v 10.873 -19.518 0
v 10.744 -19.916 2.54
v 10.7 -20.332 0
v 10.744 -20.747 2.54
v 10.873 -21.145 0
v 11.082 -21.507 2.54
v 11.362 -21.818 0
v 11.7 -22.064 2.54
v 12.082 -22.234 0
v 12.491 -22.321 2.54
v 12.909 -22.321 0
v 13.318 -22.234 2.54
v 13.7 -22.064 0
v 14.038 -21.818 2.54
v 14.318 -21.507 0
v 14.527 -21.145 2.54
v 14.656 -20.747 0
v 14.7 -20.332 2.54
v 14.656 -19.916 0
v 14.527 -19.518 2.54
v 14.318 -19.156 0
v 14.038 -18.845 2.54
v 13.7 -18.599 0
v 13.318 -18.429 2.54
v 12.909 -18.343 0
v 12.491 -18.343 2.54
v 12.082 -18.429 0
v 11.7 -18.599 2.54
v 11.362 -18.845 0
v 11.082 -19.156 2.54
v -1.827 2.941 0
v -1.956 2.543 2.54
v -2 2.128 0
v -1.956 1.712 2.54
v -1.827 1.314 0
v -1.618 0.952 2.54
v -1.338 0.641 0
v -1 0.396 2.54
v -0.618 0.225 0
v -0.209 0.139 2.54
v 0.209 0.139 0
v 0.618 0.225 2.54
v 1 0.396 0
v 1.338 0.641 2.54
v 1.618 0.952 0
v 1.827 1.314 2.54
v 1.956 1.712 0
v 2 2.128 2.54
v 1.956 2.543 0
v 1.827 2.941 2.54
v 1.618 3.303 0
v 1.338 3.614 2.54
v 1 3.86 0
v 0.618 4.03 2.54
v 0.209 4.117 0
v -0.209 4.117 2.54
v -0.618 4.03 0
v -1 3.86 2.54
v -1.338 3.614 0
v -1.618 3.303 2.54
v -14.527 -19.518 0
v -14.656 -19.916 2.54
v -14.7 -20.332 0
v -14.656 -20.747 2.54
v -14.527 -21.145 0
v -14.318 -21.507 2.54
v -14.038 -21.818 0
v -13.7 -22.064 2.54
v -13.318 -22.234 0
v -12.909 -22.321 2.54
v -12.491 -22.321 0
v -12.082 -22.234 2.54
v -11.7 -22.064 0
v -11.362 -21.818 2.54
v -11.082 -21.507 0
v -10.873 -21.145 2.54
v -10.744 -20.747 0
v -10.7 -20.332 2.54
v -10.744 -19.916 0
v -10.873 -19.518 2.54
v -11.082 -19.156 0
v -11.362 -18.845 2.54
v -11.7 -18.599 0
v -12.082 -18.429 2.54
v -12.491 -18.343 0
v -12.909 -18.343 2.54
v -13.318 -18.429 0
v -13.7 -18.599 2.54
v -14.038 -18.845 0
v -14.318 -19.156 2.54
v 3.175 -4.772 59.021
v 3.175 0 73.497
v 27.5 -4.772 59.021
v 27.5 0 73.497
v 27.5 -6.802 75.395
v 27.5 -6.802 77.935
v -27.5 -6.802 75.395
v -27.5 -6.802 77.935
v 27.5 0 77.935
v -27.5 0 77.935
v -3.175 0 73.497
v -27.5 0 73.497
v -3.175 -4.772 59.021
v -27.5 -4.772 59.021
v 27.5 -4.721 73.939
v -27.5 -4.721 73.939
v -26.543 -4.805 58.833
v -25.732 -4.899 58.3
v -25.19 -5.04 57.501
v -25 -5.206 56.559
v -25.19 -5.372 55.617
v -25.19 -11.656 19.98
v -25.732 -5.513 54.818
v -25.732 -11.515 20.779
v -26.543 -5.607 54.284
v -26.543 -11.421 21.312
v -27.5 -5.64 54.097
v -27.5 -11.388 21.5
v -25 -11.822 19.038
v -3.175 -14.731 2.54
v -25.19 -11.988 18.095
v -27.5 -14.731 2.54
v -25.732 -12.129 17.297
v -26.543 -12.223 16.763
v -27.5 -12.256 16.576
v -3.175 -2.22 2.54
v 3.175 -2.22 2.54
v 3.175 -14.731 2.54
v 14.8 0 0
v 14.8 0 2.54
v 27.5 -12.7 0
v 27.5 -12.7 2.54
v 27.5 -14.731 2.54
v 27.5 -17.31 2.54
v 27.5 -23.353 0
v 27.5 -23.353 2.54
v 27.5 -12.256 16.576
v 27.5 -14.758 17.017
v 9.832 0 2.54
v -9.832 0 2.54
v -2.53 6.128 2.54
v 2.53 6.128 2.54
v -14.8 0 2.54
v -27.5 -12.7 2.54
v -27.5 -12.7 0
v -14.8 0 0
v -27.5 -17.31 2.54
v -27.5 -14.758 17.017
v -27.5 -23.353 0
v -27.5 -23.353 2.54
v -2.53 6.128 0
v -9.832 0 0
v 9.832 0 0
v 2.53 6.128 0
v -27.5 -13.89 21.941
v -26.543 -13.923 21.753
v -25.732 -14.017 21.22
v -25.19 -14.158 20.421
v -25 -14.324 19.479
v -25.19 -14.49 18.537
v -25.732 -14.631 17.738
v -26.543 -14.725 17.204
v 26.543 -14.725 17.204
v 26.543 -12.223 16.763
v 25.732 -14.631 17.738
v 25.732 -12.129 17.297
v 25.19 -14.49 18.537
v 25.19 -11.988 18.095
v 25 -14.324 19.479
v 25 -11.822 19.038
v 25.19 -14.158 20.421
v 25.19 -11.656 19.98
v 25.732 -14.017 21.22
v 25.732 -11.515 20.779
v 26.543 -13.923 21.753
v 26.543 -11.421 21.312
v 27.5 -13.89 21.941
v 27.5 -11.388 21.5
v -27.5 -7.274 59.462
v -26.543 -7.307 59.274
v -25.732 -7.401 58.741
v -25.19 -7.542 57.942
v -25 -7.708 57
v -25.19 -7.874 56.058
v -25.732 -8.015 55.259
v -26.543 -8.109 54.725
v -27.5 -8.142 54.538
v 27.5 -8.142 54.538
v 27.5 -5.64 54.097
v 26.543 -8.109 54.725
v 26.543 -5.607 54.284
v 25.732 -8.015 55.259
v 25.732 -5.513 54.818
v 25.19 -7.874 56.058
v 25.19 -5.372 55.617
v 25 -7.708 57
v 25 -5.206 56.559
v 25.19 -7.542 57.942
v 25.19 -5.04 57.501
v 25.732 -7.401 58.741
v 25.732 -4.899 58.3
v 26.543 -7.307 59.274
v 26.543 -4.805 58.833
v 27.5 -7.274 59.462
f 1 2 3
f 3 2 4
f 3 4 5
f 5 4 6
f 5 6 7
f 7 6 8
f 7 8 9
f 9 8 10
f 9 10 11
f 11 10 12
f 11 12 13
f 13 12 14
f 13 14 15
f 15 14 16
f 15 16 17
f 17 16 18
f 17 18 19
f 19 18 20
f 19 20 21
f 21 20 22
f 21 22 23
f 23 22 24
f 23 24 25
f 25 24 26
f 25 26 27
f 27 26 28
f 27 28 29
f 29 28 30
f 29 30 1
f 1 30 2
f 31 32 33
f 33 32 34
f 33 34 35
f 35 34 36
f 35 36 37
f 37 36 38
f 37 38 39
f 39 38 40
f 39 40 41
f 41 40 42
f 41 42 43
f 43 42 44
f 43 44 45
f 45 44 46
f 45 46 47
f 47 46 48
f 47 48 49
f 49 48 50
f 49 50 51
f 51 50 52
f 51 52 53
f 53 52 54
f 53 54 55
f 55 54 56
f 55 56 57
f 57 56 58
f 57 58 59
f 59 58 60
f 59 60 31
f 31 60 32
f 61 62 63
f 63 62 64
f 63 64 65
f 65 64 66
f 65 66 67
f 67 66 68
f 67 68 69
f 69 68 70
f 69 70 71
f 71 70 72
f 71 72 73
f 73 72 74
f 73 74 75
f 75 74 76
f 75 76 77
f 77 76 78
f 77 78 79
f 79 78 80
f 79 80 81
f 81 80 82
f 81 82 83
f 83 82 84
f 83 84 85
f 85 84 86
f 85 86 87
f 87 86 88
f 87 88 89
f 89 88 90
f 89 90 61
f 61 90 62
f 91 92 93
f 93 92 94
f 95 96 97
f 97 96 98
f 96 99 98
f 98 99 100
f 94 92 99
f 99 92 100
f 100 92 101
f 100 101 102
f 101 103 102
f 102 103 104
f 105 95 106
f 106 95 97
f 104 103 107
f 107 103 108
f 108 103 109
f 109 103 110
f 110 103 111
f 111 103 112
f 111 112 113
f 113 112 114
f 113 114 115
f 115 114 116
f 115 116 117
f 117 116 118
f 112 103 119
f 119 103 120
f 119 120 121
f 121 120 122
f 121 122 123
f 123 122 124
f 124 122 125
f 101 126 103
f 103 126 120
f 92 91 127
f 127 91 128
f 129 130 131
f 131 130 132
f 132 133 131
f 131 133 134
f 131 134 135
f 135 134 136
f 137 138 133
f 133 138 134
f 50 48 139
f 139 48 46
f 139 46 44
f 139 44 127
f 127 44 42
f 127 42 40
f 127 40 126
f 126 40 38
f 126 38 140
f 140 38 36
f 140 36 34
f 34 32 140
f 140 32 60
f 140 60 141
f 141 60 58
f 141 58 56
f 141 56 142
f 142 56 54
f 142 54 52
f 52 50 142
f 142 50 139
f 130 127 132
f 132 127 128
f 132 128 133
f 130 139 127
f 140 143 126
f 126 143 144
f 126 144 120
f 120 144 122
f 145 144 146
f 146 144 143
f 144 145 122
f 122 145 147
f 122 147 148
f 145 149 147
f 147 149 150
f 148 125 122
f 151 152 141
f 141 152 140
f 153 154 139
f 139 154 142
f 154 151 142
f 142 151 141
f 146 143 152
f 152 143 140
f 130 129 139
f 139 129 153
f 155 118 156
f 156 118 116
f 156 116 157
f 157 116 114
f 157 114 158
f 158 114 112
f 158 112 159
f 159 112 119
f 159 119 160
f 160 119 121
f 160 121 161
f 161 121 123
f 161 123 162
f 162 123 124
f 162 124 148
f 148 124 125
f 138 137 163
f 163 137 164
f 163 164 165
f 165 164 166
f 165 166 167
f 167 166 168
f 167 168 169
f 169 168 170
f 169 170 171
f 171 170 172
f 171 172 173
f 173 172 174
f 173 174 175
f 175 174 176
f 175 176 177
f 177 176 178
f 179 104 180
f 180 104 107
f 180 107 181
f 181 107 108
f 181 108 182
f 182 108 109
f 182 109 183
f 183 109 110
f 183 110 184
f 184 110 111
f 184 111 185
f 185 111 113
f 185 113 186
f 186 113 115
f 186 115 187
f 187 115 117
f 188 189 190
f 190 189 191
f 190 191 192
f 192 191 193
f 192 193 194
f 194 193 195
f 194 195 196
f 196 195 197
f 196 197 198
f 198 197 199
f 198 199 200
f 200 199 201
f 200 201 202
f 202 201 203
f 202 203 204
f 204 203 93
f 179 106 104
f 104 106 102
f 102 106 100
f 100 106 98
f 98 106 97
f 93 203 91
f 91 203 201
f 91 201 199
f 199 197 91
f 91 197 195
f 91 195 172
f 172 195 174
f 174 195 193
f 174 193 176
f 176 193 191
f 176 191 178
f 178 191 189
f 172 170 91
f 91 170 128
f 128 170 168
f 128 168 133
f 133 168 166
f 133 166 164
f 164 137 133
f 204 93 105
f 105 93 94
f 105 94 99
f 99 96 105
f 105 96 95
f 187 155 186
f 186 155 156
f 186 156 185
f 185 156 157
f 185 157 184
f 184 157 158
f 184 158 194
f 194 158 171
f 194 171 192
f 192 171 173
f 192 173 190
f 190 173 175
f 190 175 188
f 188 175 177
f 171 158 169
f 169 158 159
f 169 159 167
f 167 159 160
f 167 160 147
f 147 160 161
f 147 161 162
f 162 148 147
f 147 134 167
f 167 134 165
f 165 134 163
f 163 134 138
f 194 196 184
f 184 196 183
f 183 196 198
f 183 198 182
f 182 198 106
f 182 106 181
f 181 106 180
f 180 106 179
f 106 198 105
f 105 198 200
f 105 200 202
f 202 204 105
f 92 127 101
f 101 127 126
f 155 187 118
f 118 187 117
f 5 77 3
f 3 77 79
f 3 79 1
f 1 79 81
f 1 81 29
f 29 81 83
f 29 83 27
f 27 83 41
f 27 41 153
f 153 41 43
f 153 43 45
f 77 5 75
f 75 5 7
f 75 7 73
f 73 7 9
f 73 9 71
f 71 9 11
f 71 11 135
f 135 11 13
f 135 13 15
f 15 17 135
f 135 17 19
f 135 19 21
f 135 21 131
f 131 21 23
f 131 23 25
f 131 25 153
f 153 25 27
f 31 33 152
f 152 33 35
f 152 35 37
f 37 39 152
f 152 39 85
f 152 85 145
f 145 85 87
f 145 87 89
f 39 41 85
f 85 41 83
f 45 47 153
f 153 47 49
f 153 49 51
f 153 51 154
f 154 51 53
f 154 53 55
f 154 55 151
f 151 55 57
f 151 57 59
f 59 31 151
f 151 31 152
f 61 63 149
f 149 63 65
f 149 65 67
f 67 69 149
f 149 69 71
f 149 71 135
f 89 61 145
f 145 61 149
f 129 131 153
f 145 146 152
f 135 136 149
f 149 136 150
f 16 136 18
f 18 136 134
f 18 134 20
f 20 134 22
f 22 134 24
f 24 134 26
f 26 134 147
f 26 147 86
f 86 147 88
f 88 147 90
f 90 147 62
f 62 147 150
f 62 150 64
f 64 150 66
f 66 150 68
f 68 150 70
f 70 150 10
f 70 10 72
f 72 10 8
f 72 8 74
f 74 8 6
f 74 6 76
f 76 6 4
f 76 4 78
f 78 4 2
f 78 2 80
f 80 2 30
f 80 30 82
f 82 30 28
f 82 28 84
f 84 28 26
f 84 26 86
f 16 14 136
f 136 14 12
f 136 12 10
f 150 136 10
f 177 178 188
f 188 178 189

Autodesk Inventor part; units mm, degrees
ref_plane "YZ Plane" through (0, 0, 0) normal (1, 0, 0) x (0, 1, 0)
ref_plane "XZ Plane" through (0, 0, 0) normal (0, 1, 0) x (-1, 0, 0)
sketch "Sketch2" plane through (0, 0, 0) normal (1, 0, 0) x (0, 1, 0)
  line L0 (-23.6605, 0) -> (-23.6605, 2.54)
  line L1 (-23.6605, 2.54) -> (-17.3105, 2.54)
  line L2 (-17.3105, 2.54) -> (-4.721, 73.9386)
  line L3 (10.5271, 0) -> (9.3929, 0) projected
  line L4 (-4.721, 73.9386) -> (-2.2195, 73.4975)
  line L5 (-4.721, 73.9386) -> (-2.181, 73.9386) construction
  line L6 (-23.3526, 2.54) -> (0, 2.54)
  line L7 (0, 2.54) -> (0, 0)
  line L8 (0, 0) -> (-23.3526, 0)
  line L9 (-23.3526, 0) -> (-23.3526, 2.54)
  line L10 (-2.2195, 73.4975) -> (-14.7313, 2.54)
  point P0 (23.6605, 0)
  point P1 (-4.0951, 0)
  point P2 (-6.6351, 0)
  dimension "d2" = 2.54
  dimension "d3" = 6.35
  dimension "d5" = 100
  dimension "d6" = 2.54
  dimension "d7" = 10
  dimension "d9" = 72.5
extrude "Extrusion1" add sketch "Sketch2" along normal mid plane 55
sketch "Sketch3" plane through (0, 0, 0) normal (1, 0, 0) x (0, 1, 0)
  line L0 (-2.2195, 73.4975) -> (-2.2195, 2.54)
  line L1 (0, 2.54) -> (-14.7313, 2.54) projected
  line L2 (-14.7313, 2.54) -> (-2.2195, 73.4975)
  line L3 (-2.2195, 73.4975) -> (-14.7313, 2.54) projected
  line L4 (-2.2195, 73.4975) -> (0, 73.4975)
  line L5 (0, 73.4975) -> (-2.2195, 2.54)
  point P0 (0, 0)
extrude "Extrusion2" add sketch "Sketch3" along normal mid plane 6.35
sketch "Sketch4" plane through (-27.5, -17.3105, 2.54) normal (0, -0.9848078, 0.1736482) x (1, 0, 0)
  line L0 (2.5, 71.4739) -> (2.5, 1.4739) construction
  line L1 (2.5, 1.4739) -> (52.5, 1.4739) construction
  line L2 (52.5, 1.4739) -> (52.5, 71.4739) construction
  line L3 (52.5, 71.4739) -> (2.5, 71.4739) construction
  line L4 (2.5, 71.4739) -> (52.5, 1.4739) construction
  line L5 (2.5, 1.4739) -> (52.5, 71.4739) construction
  line L6 (55, 0.4479) -> (55, 72.5) projected
  line L7 (2.5, 71.4739) -> (72.5, 71.4739) construction
  line L8 (55, 36.4739) -> (55, 71.4739)
  line L9 (55, 36.4739) -> (55, 1.4739)
  line L10 (55, 72.5) -> (55, 0) projected
  line L11 (55, 55.3) -> (52.5, 55.3)
  line L12 (55, 17.2) -> (52.5, 17.2)
  line L13 (0, 0) -> (0, 72.5) projected
  line L14 (0, 36.4739) -> (0, 71.4739)
  line L15 (0, 36.4739) -> (0, 1.7269)
  line L16 (0, 0.4479) -> (0, 3.0059) projected
  line L17 (0, 17.2) -> (2.5, 17.2)
  line L18 (0, 55.3) -> (2.5, 55.3)
  circle A0 centre (55, 55.3) radius 2.5
  circle A1 centre (55, 17.2) radius 2.5
  circle A2 centre (0, 55.3) radius 2.5
  circle A3 centre (0, 17.2) radius 2.5
  point P0 (27.5, 0.5045)
  point P1 (27.5, 36.4739)
  point P2 (27.5, 36.4739)
  point P3 (27.5, 36.4739)
  point P4 (55, 36.25)
  point P5 (55, 36.25)
  point P6 (0, 52.8)
  point P7 (0, 57.8)
  point P8 (0, 14.7)
  point P9 (0, 19.7)
  point P10 (55, 14.7)
  point P11 (55, 19.7)
  point P12 (55, 52.8)
  point P13 (55, 57.8)
  dimension "d14" = 70
  dimension "d15" = 90
  dimension "d16" = 50
  dimension "d17" = 19.05
  dimension "d18" = 19.05
extrude "Extrusion3" cut sketch "Sketch4" against normal through all contours A1 L12 L6 | L12 A1 L6 | A0 L11 L6 | L11 A0 L6 | L13 L17 A3 | L13 A3 L17 | L13 L18 A2 | L13 A2 L18
sketch "Sketch5" plane through (-27.5, 0, 2.54) normal (0, 0, 1) x (1, 0, 0)
  line L0 (64.0804, -22.4444) -> (30.0297, 6.1276) projected
  line L1 (-9.0804, -22.4444) -> (24.9703, 6.1276) projected
  line L2 (30.0297, 6.1276) -> (24.9703, 6.1276)
  line L3 (0, 0) -> (55, 0) projected
  line L4 (37.3323, 0) -> (17.6677, 0)
  point P0 (27.5, 0)
ref_plane "Work Plane1" through (-49.846, -23.6605, 0) normal (0, 0, 1) x (1, 0, 0)
extrude "Extrusion4" add sketch "Sketch5" against normal up to surface (2.54 mm away)
chamfer "Chamfer1" distance 12.7 angle 45 2 edges at (-27.5, 0, 1.27) (27.5, 0, 1.27)
sketch "Sketch6" plane through (-27.5, 0, 0) normal (-1, 0, 0) x (0, 0, 1)
  line L0 (73.9386, -4.721) -> (73.4975, -2.2195) projected
  line L1 (73.9386, -4.721) -> (75.3954, -6.8016)
  line L2 (73.9386, -4.721) -> (76.4786, -4.721) construction
  line L3 (75.3954, -6.8016) -> (75.3954, 0)
  line L4 (75.3954, 0) -> (73.4975, 0)
  line L5 (73.4975, 0) -> (73.4975, -2.2195)
  line L6 (54.0968, -5.6404) -> (59.0208, -4.7722) projected
  line L7 (73.4975, 0) -> (59.0208, -4.7722)
  line L8 (59.0208, -4.7722) -> (73.4975, -2.2195)
  line L9 (75.3954, -6.8016) -> (77.9354, -6.8016)
  line L10 (77.9354, -6.8016) -> (77.9354, 0)
  line L11 (77.9354, 0) -> (75.3954, 0)
  line L12 (75.3954, 0) -> (75.3954, -6.8016)
  point P0 (0, 0)
  dimension "d26" = 2.54
  dimension "d27" = 55
  dimension "d30" = 2.54
extrude "Extrusion5" add sketch "Sketch6" against normal up to surface (55 mm away)
sketch "Sketch7" plane through (-27.5, -14.7313, 2.54) normal (0, 0, 1) x (1, 0, 0)
  line L0 (12.7, 14.7313) -> (17.6677, 14.7313) construction
  line L1 (37.3323, 14.7313) -> (17.6677, 14.7313) construction
  line L2 (27.5, 14.7313) -> (27.5, 20.8588) construction
  line L3 (30.0297, 20.8588) -> (24.9703, 20.8588) construction
  line L4 (0, -2.5792) -> (55, -2.5792) construction
  line L5 (0, 2.0313) -> (0, -8.6214) construction
  line L6 (55, -2.5792) -> (0, -8.6214) construction
  line L7 (0, -8.6214) -> (0, -2.5792) construction
  line L8 (0, -8.6214) -> (55, -8.6214) construction
  line L9 (55, -8.6214) -> (0, -2.5792) construction
  line L10 (55, -8.6214) -> (55, 2.0313) construction
  line L11 (55, -5.6003) -> (0, -5.6003) construction
  point P0 (27.5, 16.8588)
  point P1 (40.2, -5.6003)
  point P2 (14.8, -5.6003)
  point P3 (27.5, -5.6003)
  point P4 (27.5, -5.6003)
  dimension "d31" = 4
  dimension "d39" = 12.7
  dimension "d40" = 12.7
hole "Hole1" at (0, 2.1276, 2.54) at (12.7, -20.3315, 2.54) at (-12.7, -20.3315, 2.54) direction (0, 0, -1) diameter 4 depth 5.8
properties part number "BreadboardHolderv1"
